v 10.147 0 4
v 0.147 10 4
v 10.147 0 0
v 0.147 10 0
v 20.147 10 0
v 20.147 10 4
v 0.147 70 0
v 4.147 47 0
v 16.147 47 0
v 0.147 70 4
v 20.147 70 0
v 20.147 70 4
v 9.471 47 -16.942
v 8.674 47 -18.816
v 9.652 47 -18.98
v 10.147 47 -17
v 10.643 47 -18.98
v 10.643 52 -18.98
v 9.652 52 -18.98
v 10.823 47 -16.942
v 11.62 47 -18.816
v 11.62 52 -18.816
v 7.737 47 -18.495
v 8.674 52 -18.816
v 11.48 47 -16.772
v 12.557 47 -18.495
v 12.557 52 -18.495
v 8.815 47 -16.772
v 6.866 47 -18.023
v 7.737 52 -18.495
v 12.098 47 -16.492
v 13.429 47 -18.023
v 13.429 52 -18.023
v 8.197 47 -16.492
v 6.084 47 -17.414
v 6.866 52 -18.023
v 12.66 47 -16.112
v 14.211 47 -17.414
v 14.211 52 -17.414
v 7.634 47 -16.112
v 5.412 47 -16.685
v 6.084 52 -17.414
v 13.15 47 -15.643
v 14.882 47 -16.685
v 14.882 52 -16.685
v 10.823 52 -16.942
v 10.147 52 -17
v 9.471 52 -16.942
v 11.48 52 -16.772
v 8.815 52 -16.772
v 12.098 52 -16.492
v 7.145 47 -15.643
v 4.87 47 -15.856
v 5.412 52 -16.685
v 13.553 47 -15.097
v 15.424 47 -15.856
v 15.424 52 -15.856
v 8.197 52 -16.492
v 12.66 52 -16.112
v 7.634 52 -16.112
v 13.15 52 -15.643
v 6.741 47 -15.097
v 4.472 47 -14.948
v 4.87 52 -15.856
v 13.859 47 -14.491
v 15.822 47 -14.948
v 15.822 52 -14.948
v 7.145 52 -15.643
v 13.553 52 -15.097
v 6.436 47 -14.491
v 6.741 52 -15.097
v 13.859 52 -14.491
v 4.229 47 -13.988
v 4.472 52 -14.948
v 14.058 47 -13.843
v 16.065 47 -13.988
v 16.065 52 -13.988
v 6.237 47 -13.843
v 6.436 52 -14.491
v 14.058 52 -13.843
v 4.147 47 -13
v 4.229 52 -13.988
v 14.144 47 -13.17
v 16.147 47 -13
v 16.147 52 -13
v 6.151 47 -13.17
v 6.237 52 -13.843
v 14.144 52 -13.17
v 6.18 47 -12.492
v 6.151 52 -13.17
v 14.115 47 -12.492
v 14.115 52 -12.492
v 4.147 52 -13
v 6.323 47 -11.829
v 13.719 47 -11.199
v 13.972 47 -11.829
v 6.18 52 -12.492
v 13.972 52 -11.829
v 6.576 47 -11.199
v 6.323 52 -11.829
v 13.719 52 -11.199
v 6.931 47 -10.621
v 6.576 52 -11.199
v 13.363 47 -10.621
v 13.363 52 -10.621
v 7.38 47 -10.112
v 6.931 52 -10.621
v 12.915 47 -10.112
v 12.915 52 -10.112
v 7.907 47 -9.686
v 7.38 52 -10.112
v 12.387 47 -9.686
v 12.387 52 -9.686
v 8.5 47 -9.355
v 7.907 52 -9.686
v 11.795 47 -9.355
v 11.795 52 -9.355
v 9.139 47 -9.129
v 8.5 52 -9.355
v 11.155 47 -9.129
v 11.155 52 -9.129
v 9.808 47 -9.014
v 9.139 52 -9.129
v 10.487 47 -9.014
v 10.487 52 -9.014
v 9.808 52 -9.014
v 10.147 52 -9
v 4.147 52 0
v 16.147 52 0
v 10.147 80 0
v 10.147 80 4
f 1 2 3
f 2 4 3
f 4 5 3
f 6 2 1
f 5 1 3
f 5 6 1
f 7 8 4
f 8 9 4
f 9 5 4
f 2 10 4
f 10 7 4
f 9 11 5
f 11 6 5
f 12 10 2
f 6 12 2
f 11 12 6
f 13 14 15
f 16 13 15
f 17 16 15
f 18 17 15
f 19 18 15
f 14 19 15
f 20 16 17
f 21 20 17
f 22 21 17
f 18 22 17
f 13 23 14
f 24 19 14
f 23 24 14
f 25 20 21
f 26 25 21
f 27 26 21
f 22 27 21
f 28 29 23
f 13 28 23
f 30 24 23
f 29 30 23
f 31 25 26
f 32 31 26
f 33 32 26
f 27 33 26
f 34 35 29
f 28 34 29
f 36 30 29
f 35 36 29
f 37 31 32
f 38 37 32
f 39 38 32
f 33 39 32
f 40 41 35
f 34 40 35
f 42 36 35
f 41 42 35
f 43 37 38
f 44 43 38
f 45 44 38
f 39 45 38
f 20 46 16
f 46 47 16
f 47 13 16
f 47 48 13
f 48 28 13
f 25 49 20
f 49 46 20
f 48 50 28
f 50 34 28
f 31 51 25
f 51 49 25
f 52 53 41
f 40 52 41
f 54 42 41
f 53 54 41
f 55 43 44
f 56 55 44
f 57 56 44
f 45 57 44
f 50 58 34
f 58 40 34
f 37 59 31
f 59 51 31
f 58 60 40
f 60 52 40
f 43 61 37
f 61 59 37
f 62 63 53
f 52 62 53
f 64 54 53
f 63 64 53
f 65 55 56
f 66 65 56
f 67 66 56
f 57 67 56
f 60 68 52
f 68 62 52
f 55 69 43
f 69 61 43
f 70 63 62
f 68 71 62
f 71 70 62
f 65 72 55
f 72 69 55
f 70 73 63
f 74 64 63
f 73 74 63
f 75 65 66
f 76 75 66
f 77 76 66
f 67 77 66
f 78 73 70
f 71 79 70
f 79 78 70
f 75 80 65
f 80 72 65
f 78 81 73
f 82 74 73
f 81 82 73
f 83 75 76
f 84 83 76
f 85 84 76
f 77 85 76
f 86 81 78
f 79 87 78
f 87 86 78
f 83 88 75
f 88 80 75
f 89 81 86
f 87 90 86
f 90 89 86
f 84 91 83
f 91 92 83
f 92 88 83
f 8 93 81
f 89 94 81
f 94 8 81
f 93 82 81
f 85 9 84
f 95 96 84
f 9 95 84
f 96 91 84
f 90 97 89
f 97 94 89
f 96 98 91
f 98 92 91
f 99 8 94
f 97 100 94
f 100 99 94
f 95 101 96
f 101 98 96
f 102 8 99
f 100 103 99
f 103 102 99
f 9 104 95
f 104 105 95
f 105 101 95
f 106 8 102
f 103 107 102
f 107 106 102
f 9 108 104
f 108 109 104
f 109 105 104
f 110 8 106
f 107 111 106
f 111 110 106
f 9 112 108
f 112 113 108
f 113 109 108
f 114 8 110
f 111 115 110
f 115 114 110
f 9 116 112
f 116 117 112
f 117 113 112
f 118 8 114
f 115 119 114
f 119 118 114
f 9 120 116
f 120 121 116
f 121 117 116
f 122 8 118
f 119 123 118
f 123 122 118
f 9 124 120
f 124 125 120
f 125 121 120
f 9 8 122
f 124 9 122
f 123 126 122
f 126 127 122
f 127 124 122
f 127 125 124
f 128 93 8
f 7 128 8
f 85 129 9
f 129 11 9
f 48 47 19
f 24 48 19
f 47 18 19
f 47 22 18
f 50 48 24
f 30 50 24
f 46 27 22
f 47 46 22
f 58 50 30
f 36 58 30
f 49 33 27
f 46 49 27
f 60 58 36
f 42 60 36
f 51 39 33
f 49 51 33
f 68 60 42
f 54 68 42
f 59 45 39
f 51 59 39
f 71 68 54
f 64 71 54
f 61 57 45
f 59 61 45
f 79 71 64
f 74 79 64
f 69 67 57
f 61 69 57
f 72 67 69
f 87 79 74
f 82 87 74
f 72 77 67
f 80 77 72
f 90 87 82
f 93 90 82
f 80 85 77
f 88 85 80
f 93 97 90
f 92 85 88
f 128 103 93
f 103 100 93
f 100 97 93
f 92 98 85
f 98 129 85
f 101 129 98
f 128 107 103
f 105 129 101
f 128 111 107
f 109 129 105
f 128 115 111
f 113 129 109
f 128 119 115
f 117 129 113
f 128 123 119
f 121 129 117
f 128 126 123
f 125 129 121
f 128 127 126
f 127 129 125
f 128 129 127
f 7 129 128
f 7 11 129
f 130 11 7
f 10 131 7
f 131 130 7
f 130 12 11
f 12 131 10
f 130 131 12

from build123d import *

# Parameters (mm, degrees)
EXTRUDE_1_DEPTH     = 4
SKETCH_2_W          = 12
SKETCH_2_H          = 5
EXTRUDE_2_DEPTH     = 20
SKETCH_6_R          = 4
CUT_EXTRUDE_5_DEPTH = 21


with BuildPart() as part:
    # 草图1 → 凸台-拉伸1 (new body)
    with BuildSketch(Plane.XY):
        Polygon((0.147281285, 10), (0.147281285, 70), (10.147281285, 80), (20.147281285, 70), (20.147281285, 10), (10.147281285, 0), align=None)
    extrude(amount=EXTRUDE_1_DEPTH)

    # 草图2 → 凸台-拉伸2 (add)
    with BuildSketch(Plane(origin=(0, 0, 0), x_dir=(-1, 0, 0), z_dir=(0, 0, -1))):
        with Locations((-10.147281285, 49.5)):
            Rectangle(SKETCH_2_W, SKETCH_2_H)
    extrude(amount=EXTRUDE_2_DEPTH)

    # 草图6 → 切除-拉伸5 (cut)
    with BuildSketch(Plane.XZ.offset(-47)):
        with Locations(Location((10.147281285, -13, 0), (0, 0, 270))):
            Circle(SKETCH_6_R)
        with BuildLine():
            Line((16.147281285, -20), (16.147281285, -13))
            ThreePointArc((16.147281285, -13), (10.147281285, -19), (4.147281285, -13))
            Line((4.147281285, -13), (4.147281285, -20))
            Line((4.147281285, -20), (16.147281285, -20))
        make_face()
    extrude(amount=-CUT_EXTRUDE_5_DEPTH, mode=Mode.SUBTRACT)


solid = part.part
